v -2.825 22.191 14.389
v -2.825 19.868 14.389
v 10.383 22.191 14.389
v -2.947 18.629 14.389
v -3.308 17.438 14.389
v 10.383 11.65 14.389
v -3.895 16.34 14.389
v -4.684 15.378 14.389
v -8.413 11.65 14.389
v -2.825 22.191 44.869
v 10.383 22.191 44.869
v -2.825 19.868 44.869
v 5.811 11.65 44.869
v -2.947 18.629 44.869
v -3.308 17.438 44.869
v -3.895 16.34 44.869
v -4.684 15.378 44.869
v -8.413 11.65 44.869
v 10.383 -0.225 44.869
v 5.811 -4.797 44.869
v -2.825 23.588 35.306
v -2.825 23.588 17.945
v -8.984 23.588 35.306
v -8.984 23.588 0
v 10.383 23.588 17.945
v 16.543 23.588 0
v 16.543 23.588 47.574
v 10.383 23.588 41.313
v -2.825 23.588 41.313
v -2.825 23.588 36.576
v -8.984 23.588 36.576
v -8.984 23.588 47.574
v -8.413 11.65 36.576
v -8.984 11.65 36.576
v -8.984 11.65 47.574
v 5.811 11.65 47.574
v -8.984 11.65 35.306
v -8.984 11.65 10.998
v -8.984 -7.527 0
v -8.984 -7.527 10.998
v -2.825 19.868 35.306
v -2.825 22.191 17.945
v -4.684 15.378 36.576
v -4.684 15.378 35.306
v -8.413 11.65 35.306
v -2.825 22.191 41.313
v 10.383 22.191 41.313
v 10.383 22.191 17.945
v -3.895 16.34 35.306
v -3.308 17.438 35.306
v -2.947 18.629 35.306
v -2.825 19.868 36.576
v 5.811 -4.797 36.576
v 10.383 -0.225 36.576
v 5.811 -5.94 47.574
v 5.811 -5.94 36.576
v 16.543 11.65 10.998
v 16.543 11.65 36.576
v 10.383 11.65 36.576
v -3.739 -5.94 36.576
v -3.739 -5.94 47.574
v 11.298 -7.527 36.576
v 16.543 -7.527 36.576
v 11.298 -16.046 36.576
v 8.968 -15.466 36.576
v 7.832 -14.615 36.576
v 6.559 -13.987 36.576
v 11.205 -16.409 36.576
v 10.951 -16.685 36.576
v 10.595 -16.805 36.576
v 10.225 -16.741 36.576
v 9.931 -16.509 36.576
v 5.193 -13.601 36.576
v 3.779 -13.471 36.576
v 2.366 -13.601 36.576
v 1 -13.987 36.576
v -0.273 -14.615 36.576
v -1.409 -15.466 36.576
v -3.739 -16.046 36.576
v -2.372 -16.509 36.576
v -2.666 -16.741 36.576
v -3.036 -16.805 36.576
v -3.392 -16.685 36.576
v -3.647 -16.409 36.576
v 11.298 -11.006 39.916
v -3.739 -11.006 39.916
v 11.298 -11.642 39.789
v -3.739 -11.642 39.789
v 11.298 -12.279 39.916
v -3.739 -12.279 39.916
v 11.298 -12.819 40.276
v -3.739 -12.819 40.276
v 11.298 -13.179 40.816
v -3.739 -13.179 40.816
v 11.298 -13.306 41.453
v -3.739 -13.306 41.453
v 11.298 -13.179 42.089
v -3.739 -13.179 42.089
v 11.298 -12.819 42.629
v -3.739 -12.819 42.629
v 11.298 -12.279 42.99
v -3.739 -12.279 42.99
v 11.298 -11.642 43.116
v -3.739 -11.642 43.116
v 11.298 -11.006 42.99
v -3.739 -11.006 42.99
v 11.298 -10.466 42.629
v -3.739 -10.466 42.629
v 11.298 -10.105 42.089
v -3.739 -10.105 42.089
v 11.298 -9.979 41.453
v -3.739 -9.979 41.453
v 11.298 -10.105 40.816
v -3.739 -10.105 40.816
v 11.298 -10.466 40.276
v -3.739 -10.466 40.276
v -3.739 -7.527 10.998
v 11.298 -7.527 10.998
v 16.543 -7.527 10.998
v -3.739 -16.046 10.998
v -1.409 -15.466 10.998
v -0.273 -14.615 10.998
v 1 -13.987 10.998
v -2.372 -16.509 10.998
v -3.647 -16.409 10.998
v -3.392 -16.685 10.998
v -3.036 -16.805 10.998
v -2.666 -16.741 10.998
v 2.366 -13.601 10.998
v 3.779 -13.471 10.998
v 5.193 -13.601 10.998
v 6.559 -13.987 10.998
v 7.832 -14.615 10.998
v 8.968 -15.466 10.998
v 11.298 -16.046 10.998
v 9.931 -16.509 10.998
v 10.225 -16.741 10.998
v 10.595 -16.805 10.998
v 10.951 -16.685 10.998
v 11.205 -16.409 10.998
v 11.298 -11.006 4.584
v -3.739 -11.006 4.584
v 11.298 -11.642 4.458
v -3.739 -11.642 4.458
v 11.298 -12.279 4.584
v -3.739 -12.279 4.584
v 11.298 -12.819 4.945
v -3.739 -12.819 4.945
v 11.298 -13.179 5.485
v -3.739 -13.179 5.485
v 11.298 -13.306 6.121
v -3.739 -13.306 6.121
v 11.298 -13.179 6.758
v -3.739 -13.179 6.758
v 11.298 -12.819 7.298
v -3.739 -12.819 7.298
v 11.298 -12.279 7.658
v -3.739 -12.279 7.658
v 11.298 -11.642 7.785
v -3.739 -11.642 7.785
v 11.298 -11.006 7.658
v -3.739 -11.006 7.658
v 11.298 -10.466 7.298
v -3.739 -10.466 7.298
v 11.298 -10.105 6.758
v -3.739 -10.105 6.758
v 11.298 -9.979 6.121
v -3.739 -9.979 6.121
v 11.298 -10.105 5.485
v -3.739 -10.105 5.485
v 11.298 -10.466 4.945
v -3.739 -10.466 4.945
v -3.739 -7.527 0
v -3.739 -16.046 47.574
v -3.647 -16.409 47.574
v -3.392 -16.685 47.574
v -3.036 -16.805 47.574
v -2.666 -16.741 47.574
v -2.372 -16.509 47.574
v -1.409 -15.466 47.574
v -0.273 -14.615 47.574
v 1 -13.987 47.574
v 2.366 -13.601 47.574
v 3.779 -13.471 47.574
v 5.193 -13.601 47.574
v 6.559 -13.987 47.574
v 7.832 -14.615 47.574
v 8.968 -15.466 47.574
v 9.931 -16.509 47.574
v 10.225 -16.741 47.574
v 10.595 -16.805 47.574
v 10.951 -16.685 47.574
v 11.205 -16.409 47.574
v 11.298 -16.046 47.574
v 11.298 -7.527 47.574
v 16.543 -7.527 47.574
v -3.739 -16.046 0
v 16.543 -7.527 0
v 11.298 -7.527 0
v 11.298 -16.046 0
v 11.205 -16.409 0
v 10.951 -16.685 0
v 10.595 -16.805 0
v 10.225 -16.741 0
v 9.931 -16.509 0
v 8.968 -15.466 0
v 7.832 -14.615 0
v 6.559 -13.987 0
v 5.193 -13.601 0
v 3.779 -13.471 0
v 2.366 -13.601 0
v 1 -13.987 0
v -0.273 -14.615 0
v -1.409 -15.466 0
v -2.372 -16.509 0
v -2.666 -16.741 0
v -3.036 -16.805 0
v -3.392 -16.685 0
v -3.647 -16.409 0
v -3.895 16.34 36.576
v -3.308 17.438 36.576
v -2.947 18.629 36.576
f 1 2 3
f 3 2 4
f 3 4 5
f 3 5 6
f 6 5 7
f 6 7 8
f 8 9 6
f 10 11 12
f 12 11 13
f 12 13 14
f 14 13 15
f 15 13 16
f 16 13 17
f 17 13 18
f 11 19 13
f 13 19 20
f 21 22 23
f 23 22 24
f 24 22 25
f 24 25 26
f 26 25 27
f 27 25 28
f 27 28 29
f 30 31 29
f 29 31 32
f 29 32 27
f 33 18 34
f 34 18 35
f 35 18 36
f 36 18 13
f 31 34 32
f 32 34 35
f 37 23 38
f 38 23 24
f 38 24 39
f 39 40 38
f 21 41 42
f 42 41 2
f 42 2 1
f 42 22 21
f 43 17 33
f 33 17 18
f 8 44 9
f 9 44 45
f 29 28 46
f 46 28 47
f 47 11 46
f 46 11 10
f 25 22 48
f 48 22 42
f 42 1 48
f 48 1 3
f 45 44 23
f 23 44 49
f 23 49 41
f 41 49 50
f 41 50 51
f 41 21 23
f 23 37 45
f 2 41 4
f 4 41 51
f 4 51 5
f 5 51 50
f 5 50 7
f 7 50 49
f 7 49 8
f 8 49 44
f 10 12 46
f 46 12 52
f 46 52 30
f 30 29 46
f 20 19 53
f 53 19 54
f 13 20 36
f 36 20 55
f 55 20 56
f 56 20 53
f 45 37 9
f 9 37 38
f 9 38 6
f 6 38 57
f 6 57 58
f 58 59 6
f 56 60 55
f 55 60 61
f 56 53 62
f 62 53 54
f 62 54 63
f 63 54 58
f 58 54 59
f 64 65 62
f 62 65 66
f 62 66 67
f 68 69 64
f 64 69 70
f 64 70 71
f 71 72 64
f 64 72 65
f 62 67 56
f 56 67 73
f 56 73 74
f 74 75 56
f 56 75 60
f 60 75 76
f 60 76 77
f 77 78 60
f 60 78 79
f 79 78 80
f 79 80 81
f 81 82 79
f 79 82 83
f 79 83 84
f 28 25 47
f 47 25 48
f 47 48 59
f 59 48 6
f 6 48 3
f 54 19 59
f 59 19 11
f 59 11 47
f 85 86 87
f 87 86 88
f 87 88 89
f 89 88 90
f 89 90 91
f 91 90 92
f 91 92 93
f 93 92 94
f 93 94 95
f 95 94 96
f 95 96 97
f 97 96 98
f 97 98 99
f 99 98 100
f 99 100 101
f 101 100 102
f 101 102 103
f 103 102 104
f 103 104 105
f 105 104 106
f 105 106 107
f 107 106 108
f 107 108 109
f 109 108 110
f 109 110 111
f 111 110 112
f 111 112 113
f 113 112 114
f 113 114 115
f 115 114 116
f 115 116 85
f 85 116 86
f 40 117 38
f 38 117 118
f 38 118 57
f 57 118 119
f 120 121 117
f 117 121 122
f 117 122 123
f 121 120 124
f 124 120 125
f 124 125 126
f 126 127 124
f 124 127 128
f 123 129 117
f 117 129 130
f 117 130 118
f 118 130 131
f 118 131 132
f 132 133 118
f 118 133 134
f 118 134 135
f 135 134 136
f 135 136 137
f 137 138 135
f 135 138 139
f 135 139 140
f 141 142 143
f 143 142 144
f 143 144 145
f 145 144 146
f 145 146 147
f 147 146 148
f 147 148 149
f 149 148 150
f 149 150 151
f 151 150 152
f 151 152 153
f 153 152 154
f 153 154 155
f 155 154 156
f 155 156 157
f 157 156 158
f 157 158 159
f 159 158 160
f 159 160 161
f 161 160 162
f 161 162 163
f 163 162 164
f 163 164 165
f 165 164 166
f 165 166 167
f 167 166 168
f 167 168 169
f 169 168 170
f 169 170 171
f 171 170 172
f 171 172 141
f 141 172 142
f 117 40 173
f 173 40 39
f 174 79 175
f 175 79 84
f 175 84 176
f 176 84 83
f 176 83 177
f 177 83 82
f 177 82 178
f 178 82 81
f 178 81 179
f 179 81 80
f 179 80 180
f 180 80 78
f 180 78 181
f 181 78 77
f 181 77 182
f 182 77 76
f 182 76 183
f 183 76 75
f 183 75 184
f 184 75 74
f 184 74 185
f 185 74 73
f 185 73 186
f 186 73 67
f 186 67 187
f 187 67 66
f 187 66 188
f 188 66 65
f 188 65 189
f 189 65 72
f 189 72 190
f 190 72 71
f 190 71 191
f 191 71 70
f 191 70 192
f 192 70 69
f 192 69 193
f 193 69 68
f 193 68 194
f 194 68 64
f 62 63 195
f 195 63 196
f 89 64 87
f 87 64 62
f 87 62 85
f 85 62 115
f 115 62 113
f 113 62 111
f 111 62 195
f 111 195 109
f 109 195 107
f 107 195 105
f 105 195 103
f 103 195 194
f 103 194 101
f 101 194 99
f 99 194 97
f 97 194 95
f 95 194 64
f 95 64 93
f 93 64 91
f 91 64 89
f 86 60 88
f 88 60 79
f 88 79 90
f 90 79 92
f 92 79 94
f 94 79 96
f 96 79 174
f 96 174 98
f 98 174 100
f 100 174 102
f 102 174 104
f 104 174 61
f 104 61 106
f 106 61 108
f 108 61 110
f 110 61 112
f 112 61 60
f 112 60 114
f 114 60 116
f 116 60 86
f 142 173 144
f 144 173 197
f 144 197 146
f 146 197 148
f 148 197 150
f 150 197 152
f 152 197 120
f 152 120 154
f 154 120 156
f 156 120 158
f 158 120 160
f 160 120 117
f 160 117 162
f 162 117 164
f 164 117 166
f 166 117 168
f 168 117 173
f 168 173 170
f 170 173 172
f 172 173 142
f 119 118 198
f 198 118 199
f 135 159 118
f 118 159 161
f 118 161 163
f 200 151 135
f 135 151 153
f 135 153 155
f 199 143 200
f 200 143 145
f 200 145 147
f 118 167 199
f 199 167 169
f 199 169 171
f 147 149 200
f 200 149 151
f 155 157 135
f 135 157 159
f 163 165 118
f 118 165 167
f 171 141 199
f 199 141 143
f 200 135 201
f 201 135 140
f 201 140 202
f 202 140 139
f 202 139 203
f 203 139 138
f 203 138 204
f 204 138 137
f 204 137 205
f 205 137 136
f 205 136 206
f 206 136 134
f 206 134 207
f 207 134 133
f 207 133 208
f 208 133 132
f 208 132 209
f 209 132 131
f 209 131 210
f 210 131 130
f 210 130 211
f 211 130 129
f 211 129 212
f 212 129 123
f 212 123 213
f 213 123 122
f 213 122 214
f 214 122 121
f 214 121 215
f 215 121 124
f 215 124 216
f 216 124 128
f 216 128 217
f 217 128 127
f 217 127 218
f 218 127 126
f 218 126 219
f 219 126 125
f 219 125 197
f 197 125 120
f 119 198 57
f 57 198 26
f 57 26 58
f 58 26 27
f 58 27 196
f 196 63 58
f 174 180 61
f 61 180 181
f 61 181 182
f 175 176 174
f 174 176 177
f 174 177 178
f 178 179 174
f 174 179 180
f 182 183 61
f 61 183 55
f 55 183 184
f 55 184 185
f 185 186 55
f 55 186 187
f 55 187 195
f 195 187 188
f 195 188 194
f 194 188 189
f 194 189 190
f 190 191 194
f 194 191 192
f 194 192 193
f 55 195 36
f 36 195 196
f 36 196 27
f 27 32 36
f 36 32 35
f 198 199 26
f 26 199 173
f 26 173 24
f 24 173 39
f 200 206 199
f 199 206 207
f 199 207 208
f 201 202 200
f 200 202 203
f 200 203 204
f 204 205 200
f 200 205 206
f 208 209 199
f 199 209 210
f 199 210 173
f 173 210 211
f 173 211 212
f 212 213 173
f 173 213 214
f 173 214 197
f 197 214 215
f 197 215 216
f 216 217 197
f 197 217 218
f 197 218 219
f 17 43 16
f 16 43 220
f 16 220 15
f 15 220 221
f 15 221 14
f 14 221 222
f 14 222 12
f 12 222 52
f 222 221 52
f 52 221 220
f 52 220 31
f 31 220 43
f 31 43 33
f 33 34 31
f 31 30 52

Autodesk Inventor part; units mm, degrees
ref_plane "YZ Plane" through (0, 0, 0) normal (1, 0, 0) x (0, 1, 0)
ref_plane "XZ Plane" through (0, 0, 0) normal (0, 1, 0) x (-1, 0, 0)
ref_plane "XY Plane" through (0, 0, 0) normal (0, 0, 1) x (1, 0, 0)
sketch "Side Block" plane through (0, 0, 0) normal (0, 0, 1) x (1, 0, 0)
  line L0 (11.2978, -7.5275) -> (11.2978, -16.0456)
  line L1 (11.2978, -7.5275) -> (16.5429, -7.5275)
  line L2 (16.5429, -7.5275) -> (16.5429, 23.5875)
  line L3 (16.5429, 23.5875) -> (-8.9841, 23.5875)
  line L4 (-8.9841, 23.5875) -> (-8.9841, -7.5275)
  line L5 (-8.9841, -7.5275) -> (-3.739, -7.5275)
  line L6 (-3.739, -16.0456) -> (-3.739, -7.5275)
  line L7 (3.7794, -23.2501) -> (3.7794, -21.2181)
  arc A0 (9.9308, -16.5088) -> (-2.3719, -16.5088) centre (3.7794, -21.2181) ccw
  arc A1 (-3.739, -16.0456) -> (-2.3719, -16.5088) centre (-2.977, -16.0456) ccw
  arc A2 (9.9308, -16.5088) -> (11.2978, -16.0456) centre (10.5358, -16.0456) ccw
  point P0 (3.7794, -4.0139)
  point P1 (-3.739, -19.35)
  point P2 (11.2978, -19.35)
  dimension "d2" = 31.115
  dimension "d3" = 31.115
  dimension "d4" = 5.2451
  dimension "d5" = 25.527
  dimension "d58" = 2.032
  dimension "d59" = 15.494
  dimension "d60" = 0.762
sketch "Motor Containment" plane through (0, 0, 0) normal (0, 0, 1) x (1, 0, 0)
  line L0 (-35.1538, -13.4444) -> (-35.1538, -17.0004) construction
  line L1 (-35.1538, -40.3684) -> (-35.1538, -43.9244) construction
  line L2 (-35.1538, -17.0004) -> (-35.1538, -22.8424)
  line L3 (-41.7578, -43.9244) -> (-28.5498, -43.9244)
  line L4 (-28.5498, -43.9244) -> (-28.5498, -13.4444)
  line L5 (-28.5498, -13.4444) -> (-41.7578, -13.4444)
  line L6 (-41.7578, -13.4444) -> (-41.7578, -43.9244)
  line L7 (-41.7578, -40.3684) -> (-28.5498, -40.3684)
  line L8 (-28.5498, -40.3684) -> (-28.5498, -17.0004)
  line L9 (-28.5498, -17.0004) -> (-41.7578, -17.0004)
  line L10 (-41.7578, -17.0004) -> (-41.7578, -40.3684)
  point P0 (-35.1538, -28.1145)
  dimension "d17" = 13.208
  dimension "d18" = 30.48
  dimension "d19" = 23.368
  dimension "d20" = 5.842
sketch "Sketch1" plane through (0, 0, 0) normal (0, 0, 1) x (1, 0, 0)
  line L0 (11.2978, -7.5275) -> (11.2978, -16.0456)
  line L1 (11.2978, -7.5275) -> (16.5429, -7.5275)
  line L2 (16.5429, -7.5275) -> (16.5429, 23.5875)
  line L3 (16.5429, 23.5875) -> (-8.9841, 23.5875)
  line L4 (-8.9841, 23.5875) -> (-8.9841, -7.5275)
  line L5 (-8.9841, -7.5275) -> (-3.739, -7.5275)
  line L6 (-3.739, -16.0456) -> (-3.739, -7.5275)
  line L7 (3.7794, -23.2501) -> (3.7794, -21.2181)
  arc A0 (9.9308, -16.5088) -> (-2.3719, -16.5088) centre (3.7794, -21.2181) ccw
  arc A1 (-3.739, -16.0456) -> (-2.3719, -16.5088) centre (-2.977, -16.0456) ccw
  arc A2 (9.9308, -16.5088) -> (11.2978, -16.0456) centre (10.5358, -16.0456) ccw
  point P0 (0, 0)
  dimension "d6" = 23.5875
extrude "Extrusion1" add sketch "Sketch1" along normal blind 47.5742
sketch "Sketch2" plane through (-8.9841, 23.5875, 0) normal (0, 1, 0) x (1, 0, 0)
  line L0 (0, -47.5742) -> (5.2451, -47.5742) projected
  line L1 (20.2819, 0) -> (25.527, 0) projected
  line L2 (0, -47.5742) -> (25.527, -47.5742)
  line L3 (25.527, -47.5742) -> (25.527, 0)
  line L4 (25.527, 0) -> (0, 0)
  line L5 (0, 0) -> (0, -47.5742)
  line L6 (0, -23.7871) -> (25.527, -23.7871) construction
  circle A0 centre (12.7635, -23.7871) radius 12.7
  line L7 (0, 0) -> (0, -47.5742) projected
  line L8 (0, -11.0871) -> (25.527, -11.0871)
  line L9 (12.7635, -14.3891) -> (12.7635, -17.9451) construction
  line L10 (12.7635, -41.3131) -> (12.7635, -44.8691) construction
  line L11 (12.7635, -17.9451) -> (12.7635, -23.7871)
  line L12 (6.1595, -44.8691) -> (19.3675, -44.8691)
  line L13 (19.3675, -44.8691) -> (19.3675, -14.3891)
  line L14 (19.3675, -14.3891) -> (6.1595, -14.3891)
  line L15 (6.1595, -14.3891) -> (6.1595, -44.8691)
  line L16 (6.1595, -41.3131) -> (19.3675, -41.3131)
  line L17 (19.3675, -41.3131) -> (19.3675, -17.9451)
  line L18 (19.3675, -17.9451) -> (6.1595, -17.9451)
  line L19 (6.1595, -17.9451) -> (6.1595, -41.3131)
  point P0 (8.9841, 0)
  point P1 (6.1595, -17.9451)
  dimension "d21" = 25.4
sketch "Sketch3" plane through (-8.9841, -7.5275, 0) normal (-1, 0, 0) x (0, 0, 1)
  line L0 (0, 19.177) -> (47.5742, 19.177)
  line L1 (47.5742, 31.115) -> (47.5742, 0) projected
  line L2 (0, 31.115) -> (47.5742, 31.115) projected
  line L3 (41.4528, 31.115) -> (41.4528, -19.3537) construction
  line L4 (6.1214, 31.115) -> (6.1214, -20.7554) construction
  line L5 (0, 31.115) -> (0, 0) construction
  circle A0 centre (6.1214, -4.1148) radius 1.6637
  circle A1 centre (41.4528, -4.1148) radius 1.6637
  line L6 (23.7871, 31.115) -> (23.7871, -19.3537) construction
  line L7 (36.576, 19.177) -> (36.576, -23.6144)
  line L8 (10.9982, 19.177) -> (10.9982, -23.6144)
  line L9 (36.576, -23.6144) -> (10.9982, -23.6144)
  line L10 (0, 0) -> (47.5742, 0) projected
  point P0 (10.9982, 19.177)
  dimension "d26" = 11.938
  dimension "d27" = 6.1214
  dimension "d28" = 6.1214
  dimension "d29" = 3.3274
  dimension "d30" = 3.3274
  dimension "d33" = 10.9982
  dimension "d54" = 4.1148
  dimension "d55" = 4.1148
extrude "Extrusion4" cut sketch "Sketch3" against normal blind 46.0375 contours L0 L7 L10 L8 | L10 L7 L9 L8 | A0 | A1
extrude "Extrusion5" cut sketch "Sketch2" against normal blind 23.8125 contours L15 L18 L13 A0 | A0 L13 L16 L15 | L15 L14 L13 L18 | L16 L13 L12 L15
sketch "Sketch4" plane through (0, 0, 47.5742) normal (0, 0, 1) x (1, 0, 0)
  line L0 (16.5429, 23.5875) -> (-8.9841, 23.5875) construction
  line L1 (3.7794, 23.5875) -> (3.7794, -25.467) construction
  line L2 (5.8114, 11.6495) -> (5.8114, -5.94)
  line L3 (-8.9841, 11.6495) -> (-8.9841, -7.5275) projected
  line L4 (-8.9841, -5.94) -> (16.5429, -5.94)
  line L5 (16.5429, -7.5275) -> (16.5429, 11.6495) projected
  line L6 (-8.9841, -7.5275) -> (-3.739, -7.5275) projected
  line L7 (-8.9841, 11.6495) -> (-2.8246, 11.6495) projected
  line L8 (-8.9841, 11.6495) -> (5.8114, 11.6495)
  line L9 (-3.739, -7.5275) -> (-3.739, -16.0456) projected
  line L10 (-3.739, -7.5275) -> (-3.739, -5.94)
  point P0 (0, 0)
  point P1 (-3.739, -18.0776)
  dimension "d38" = 2.032
  dimension "d39" = 1.5875
extrude "Extrusion6" cut sketch "Sketch4" against normal blind 14.2875
chamfer "Chamfer1" distance 5.588 angle 45 1 edges at (-2.8246, 11.6495, 29.6291)
sketch "Sketch5" plane through (3.7794, -23.2501, 36.576) normal (0, 0, -1) x (-1, 0, 0)
  line L0 (-6.604, 23.0251) -> (-6.604, 34.8996) projected
  line L1 (-6.604, 23.0251) -> (-2.032, 18.4531)
  line L2 (-2.032, 17.3101) -> (-2.032, 23.0251) projected
  line L3 (-6.604, 23.0251) -> (-0.1382, 23.0251) construction
  line L4 (-2.032, 18.4531) -> (-2.032, 23.0251)
  line L5 (-2.032, 23.0251) -> (-6.604, 23.0251)
  point P0 (3.7794, 23.2501)
  dimension "d45" = 45
extrude "Extrusion7" cut sketch "Sketch5" against normal up to surface (8.2931 mm away)
extrude "Extrusion8" add sketch "Sketch2" against normal blind 1.397 contours L15 L14 L13 L18 | L16 L13 L12 L15
sketch "Sketch6" plane through (-8.9841, -7.5275, 0) normal (-1, 0, 0) x (0, 0, 1)
  line L0 (0, 31.115) -> (47.5742, 31.115) projected
  line L1 (36.576, 19.177) -> (14.3891, 19.177) projected
  line L2 (36.576, 31.115) -> (35.306, 31.115)
  line L3 (35.306, 31.115) -> (35.306, 19.177)
  line L4 (35.306, 19.177) -> (36.576, 19.177)
  line L5 (36.576, 19.177) -> (36.576, 31.115)
  line L6 (36.576, 7.3025) -> (36.576, 19.177) projected
  point P0 (0, 7.5275)
  dimension "d52" = 0
  dimension "d53" = 1.27
extrude "Extrusion9" cut sketch "Sketch6" against normal blind 14.2875
fillet "Fillet1" radius 6.35 2 edges at (-2.8246, 17.2375, 40.7226) (-2.8246, 17.2375, 24.8476)
equation "\"d27\" = d28"
equation "\"d30\" = d29"
properties part number "Servo Mount V5"
